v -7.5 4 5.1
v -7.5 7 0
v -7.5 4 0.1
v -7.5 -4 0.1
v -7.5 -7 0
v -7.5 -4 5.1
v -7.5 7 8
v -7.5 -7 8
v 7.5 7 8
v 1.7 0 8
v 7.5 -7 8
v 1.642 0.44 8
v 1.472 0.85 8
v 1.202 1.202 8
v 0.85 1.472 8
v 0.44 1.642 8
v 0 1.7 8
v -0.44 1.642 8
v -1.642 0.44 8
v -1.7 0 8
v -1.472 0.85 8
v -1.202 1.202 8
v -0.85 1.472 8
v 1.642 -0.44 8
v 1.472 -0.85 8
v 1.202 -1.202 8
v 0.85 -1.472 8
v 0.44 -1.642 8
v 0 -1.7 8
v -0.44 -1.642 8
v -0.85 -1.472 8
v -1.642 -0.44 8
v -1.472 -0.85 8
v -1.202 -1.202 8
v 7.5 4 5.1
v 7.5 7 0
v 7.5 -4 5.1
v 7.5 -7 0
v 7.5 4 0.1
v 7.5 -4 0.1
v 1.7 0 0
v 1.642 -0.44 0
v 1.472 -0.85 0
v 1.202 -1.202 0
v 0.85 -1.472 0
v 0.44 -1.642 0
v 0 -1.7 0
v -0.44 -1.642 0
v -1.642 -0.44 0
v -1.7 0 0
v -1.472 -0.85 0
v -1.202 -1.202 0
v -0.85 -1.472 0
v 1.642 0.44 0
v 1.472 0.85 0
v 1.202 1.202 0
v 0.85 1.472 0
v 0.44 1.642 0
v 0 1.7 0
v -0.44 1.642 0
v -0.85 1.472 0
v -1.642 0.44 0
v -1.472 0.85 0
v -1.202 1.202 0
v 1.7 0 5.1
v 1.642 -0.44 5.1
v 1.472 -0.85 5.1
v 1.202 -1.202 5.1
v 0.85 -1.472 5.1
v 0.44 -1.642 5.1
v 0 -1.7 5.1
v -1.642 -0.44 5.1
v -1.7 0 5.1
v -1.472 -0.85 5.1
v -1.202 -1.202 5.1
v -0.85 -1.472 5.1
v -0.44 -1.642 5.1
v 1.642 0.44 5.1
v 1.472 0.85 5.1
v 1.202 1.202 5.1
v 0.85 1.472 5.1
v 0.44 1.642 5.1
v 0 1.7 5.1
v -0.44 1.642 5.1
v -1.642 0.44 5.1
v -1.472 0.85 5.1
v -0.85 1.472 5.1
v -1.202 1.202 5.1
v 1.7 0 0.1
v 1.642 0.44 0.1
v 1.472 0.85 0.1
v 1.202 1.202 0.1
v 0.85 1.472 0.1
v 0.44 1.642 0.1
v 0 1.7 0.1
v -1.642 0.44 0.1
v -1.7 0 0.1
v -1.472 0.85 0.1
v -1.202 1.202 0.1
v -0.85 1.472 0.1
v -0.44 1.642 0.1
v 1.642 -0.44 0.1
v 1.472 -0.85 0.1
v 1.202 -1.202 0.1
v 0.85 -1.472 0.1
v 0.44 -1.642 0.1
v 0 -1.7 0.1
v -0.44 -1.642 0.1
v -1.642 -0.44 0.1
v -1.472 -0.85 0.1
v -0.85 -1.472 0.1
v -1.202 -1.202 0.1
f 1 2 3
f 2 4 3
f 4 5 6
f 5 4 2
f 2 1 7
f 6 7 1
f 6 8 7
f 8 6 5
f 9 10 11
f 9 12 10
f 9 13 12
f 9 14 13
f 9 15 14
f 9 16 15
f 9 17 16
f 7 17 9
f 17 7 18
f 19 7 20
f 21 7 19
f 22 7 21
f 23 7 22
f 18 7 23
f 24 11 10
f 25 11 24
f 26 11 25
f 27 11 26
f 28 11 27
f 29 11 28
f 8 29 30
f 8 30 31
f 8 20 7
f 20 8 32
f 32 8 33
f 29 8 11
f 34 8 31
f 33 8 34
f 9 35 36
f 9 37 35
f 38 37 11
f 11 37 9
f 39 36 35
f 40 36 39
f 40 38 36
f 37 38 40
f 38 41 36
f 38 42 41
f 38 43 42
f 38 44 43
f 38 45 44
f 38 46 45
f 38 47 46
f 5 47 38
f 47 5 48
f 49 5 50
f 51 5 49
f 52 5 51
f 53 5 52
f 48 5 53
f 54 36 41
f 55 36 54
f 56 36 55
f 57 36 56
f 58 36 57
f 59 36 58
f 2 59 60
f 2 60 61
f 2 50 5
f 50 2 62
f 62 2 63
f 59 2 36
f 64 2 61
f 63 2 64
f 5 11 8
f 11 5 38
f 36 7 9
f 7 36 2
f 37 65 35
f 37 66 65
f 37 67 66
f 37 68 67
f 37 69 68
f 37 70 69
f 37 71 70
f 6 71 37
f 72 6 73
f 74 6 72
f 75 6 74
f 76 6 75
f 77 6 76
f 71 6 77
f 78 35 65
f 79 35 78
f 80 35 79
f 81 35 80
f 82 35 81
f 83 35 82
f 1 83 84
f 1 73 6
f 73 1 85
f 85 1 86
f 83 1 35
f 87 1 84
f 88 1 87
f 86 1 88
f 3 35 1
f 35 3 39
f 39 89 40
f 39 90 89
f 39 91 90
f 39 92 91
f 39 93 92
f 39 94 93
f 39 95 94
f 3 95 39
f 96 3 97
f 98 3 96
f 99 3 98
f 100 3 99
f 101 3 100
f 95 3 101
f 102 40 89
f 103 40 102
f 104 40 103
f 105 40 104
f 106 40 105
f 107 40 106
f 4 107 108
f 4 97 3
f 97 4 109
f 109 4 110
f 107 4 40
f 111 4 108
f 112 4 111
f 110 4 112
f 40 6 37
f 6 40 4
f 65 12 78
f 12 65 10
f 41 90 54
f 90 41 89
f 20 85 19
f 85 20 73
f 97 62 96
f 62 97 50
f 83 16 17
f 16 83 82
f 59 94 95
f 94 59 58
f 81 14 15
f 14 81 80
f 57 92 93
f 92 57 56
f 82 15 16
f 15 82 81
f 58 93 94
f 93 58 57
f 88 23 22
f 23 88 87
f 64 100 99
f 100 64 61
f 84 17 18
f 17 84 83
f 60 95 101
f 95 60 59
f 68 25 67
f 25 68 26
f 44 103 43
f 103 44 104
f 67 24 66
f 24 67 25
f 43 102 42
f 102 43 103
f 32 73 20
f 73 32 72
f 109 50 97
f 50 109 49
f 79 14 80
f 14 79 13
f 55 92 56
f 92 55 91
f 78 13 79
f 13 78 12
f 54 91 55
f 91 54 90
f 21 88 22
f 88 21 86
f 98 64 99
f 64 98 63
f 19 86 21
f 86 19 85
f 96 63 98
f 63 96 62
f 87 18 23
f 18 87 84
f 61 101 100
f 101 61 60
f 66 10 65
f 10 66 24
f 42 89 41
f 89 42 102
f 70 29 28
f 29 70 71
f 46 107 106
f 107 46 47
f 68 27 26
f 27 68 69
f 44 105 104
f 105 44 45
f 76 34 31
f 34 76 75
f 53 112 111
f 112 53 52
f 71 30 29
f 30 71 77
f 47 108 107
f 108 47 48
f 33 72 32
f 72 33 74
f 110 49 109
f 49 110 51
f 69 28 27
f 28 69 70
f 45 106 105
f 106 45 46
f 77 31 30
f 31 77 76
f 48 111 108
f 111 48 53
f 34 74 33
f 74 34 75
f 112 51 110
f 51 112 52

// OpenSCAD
// =======================================
// SCOUT Cable Retainer BLACK V1
// Standalone Version
// =======================================


$fn = 24;


// ===============================
// LOCAL DIMENSIONS
// ===============================


cable_channel_width = 8;

cable_retainer_height = 5;

pla_wall_thickness = 3;

m3_clearance_diameter = 3.4;



// ===============================
// MODEL
// ===============================


module SCOUT_Cable_Retainer_BLACK_V1() {


    retainer_length = 15;


    retainer_width =
        cable_channel_width
        +
        (pla_wall_thickness * 2);


    retainer_height =
        cable_retainer_height
        +
        pla_wall_thickness;



    difference() {



        // Main body

        translate([
            0,
            0,
            retainer_height / 2
        ])

        cube([
            retainer_length,
            retainer_width,
            retainer_height
        ], center=true);




        // Cable channel

        translate([
            0,
            0,
            (retainer_height / 2)
            -
            (pla_wall_thickness / 2)
            +
            0.1
        ])

        cube([
            retainer_length + 2,
            cable_channel_width,
            cable_retainer_height
        ], center=true);




        // Screw hole

        translate([
            0,
            0,
            retainer_height / 2
        ])

        cylinder(
            d=m3_clearance_diameter,
            h=retainer_height + 2,
            center=true
        );

    }

}



SCOUT_Cable_Retainer_BLACK_V1();
